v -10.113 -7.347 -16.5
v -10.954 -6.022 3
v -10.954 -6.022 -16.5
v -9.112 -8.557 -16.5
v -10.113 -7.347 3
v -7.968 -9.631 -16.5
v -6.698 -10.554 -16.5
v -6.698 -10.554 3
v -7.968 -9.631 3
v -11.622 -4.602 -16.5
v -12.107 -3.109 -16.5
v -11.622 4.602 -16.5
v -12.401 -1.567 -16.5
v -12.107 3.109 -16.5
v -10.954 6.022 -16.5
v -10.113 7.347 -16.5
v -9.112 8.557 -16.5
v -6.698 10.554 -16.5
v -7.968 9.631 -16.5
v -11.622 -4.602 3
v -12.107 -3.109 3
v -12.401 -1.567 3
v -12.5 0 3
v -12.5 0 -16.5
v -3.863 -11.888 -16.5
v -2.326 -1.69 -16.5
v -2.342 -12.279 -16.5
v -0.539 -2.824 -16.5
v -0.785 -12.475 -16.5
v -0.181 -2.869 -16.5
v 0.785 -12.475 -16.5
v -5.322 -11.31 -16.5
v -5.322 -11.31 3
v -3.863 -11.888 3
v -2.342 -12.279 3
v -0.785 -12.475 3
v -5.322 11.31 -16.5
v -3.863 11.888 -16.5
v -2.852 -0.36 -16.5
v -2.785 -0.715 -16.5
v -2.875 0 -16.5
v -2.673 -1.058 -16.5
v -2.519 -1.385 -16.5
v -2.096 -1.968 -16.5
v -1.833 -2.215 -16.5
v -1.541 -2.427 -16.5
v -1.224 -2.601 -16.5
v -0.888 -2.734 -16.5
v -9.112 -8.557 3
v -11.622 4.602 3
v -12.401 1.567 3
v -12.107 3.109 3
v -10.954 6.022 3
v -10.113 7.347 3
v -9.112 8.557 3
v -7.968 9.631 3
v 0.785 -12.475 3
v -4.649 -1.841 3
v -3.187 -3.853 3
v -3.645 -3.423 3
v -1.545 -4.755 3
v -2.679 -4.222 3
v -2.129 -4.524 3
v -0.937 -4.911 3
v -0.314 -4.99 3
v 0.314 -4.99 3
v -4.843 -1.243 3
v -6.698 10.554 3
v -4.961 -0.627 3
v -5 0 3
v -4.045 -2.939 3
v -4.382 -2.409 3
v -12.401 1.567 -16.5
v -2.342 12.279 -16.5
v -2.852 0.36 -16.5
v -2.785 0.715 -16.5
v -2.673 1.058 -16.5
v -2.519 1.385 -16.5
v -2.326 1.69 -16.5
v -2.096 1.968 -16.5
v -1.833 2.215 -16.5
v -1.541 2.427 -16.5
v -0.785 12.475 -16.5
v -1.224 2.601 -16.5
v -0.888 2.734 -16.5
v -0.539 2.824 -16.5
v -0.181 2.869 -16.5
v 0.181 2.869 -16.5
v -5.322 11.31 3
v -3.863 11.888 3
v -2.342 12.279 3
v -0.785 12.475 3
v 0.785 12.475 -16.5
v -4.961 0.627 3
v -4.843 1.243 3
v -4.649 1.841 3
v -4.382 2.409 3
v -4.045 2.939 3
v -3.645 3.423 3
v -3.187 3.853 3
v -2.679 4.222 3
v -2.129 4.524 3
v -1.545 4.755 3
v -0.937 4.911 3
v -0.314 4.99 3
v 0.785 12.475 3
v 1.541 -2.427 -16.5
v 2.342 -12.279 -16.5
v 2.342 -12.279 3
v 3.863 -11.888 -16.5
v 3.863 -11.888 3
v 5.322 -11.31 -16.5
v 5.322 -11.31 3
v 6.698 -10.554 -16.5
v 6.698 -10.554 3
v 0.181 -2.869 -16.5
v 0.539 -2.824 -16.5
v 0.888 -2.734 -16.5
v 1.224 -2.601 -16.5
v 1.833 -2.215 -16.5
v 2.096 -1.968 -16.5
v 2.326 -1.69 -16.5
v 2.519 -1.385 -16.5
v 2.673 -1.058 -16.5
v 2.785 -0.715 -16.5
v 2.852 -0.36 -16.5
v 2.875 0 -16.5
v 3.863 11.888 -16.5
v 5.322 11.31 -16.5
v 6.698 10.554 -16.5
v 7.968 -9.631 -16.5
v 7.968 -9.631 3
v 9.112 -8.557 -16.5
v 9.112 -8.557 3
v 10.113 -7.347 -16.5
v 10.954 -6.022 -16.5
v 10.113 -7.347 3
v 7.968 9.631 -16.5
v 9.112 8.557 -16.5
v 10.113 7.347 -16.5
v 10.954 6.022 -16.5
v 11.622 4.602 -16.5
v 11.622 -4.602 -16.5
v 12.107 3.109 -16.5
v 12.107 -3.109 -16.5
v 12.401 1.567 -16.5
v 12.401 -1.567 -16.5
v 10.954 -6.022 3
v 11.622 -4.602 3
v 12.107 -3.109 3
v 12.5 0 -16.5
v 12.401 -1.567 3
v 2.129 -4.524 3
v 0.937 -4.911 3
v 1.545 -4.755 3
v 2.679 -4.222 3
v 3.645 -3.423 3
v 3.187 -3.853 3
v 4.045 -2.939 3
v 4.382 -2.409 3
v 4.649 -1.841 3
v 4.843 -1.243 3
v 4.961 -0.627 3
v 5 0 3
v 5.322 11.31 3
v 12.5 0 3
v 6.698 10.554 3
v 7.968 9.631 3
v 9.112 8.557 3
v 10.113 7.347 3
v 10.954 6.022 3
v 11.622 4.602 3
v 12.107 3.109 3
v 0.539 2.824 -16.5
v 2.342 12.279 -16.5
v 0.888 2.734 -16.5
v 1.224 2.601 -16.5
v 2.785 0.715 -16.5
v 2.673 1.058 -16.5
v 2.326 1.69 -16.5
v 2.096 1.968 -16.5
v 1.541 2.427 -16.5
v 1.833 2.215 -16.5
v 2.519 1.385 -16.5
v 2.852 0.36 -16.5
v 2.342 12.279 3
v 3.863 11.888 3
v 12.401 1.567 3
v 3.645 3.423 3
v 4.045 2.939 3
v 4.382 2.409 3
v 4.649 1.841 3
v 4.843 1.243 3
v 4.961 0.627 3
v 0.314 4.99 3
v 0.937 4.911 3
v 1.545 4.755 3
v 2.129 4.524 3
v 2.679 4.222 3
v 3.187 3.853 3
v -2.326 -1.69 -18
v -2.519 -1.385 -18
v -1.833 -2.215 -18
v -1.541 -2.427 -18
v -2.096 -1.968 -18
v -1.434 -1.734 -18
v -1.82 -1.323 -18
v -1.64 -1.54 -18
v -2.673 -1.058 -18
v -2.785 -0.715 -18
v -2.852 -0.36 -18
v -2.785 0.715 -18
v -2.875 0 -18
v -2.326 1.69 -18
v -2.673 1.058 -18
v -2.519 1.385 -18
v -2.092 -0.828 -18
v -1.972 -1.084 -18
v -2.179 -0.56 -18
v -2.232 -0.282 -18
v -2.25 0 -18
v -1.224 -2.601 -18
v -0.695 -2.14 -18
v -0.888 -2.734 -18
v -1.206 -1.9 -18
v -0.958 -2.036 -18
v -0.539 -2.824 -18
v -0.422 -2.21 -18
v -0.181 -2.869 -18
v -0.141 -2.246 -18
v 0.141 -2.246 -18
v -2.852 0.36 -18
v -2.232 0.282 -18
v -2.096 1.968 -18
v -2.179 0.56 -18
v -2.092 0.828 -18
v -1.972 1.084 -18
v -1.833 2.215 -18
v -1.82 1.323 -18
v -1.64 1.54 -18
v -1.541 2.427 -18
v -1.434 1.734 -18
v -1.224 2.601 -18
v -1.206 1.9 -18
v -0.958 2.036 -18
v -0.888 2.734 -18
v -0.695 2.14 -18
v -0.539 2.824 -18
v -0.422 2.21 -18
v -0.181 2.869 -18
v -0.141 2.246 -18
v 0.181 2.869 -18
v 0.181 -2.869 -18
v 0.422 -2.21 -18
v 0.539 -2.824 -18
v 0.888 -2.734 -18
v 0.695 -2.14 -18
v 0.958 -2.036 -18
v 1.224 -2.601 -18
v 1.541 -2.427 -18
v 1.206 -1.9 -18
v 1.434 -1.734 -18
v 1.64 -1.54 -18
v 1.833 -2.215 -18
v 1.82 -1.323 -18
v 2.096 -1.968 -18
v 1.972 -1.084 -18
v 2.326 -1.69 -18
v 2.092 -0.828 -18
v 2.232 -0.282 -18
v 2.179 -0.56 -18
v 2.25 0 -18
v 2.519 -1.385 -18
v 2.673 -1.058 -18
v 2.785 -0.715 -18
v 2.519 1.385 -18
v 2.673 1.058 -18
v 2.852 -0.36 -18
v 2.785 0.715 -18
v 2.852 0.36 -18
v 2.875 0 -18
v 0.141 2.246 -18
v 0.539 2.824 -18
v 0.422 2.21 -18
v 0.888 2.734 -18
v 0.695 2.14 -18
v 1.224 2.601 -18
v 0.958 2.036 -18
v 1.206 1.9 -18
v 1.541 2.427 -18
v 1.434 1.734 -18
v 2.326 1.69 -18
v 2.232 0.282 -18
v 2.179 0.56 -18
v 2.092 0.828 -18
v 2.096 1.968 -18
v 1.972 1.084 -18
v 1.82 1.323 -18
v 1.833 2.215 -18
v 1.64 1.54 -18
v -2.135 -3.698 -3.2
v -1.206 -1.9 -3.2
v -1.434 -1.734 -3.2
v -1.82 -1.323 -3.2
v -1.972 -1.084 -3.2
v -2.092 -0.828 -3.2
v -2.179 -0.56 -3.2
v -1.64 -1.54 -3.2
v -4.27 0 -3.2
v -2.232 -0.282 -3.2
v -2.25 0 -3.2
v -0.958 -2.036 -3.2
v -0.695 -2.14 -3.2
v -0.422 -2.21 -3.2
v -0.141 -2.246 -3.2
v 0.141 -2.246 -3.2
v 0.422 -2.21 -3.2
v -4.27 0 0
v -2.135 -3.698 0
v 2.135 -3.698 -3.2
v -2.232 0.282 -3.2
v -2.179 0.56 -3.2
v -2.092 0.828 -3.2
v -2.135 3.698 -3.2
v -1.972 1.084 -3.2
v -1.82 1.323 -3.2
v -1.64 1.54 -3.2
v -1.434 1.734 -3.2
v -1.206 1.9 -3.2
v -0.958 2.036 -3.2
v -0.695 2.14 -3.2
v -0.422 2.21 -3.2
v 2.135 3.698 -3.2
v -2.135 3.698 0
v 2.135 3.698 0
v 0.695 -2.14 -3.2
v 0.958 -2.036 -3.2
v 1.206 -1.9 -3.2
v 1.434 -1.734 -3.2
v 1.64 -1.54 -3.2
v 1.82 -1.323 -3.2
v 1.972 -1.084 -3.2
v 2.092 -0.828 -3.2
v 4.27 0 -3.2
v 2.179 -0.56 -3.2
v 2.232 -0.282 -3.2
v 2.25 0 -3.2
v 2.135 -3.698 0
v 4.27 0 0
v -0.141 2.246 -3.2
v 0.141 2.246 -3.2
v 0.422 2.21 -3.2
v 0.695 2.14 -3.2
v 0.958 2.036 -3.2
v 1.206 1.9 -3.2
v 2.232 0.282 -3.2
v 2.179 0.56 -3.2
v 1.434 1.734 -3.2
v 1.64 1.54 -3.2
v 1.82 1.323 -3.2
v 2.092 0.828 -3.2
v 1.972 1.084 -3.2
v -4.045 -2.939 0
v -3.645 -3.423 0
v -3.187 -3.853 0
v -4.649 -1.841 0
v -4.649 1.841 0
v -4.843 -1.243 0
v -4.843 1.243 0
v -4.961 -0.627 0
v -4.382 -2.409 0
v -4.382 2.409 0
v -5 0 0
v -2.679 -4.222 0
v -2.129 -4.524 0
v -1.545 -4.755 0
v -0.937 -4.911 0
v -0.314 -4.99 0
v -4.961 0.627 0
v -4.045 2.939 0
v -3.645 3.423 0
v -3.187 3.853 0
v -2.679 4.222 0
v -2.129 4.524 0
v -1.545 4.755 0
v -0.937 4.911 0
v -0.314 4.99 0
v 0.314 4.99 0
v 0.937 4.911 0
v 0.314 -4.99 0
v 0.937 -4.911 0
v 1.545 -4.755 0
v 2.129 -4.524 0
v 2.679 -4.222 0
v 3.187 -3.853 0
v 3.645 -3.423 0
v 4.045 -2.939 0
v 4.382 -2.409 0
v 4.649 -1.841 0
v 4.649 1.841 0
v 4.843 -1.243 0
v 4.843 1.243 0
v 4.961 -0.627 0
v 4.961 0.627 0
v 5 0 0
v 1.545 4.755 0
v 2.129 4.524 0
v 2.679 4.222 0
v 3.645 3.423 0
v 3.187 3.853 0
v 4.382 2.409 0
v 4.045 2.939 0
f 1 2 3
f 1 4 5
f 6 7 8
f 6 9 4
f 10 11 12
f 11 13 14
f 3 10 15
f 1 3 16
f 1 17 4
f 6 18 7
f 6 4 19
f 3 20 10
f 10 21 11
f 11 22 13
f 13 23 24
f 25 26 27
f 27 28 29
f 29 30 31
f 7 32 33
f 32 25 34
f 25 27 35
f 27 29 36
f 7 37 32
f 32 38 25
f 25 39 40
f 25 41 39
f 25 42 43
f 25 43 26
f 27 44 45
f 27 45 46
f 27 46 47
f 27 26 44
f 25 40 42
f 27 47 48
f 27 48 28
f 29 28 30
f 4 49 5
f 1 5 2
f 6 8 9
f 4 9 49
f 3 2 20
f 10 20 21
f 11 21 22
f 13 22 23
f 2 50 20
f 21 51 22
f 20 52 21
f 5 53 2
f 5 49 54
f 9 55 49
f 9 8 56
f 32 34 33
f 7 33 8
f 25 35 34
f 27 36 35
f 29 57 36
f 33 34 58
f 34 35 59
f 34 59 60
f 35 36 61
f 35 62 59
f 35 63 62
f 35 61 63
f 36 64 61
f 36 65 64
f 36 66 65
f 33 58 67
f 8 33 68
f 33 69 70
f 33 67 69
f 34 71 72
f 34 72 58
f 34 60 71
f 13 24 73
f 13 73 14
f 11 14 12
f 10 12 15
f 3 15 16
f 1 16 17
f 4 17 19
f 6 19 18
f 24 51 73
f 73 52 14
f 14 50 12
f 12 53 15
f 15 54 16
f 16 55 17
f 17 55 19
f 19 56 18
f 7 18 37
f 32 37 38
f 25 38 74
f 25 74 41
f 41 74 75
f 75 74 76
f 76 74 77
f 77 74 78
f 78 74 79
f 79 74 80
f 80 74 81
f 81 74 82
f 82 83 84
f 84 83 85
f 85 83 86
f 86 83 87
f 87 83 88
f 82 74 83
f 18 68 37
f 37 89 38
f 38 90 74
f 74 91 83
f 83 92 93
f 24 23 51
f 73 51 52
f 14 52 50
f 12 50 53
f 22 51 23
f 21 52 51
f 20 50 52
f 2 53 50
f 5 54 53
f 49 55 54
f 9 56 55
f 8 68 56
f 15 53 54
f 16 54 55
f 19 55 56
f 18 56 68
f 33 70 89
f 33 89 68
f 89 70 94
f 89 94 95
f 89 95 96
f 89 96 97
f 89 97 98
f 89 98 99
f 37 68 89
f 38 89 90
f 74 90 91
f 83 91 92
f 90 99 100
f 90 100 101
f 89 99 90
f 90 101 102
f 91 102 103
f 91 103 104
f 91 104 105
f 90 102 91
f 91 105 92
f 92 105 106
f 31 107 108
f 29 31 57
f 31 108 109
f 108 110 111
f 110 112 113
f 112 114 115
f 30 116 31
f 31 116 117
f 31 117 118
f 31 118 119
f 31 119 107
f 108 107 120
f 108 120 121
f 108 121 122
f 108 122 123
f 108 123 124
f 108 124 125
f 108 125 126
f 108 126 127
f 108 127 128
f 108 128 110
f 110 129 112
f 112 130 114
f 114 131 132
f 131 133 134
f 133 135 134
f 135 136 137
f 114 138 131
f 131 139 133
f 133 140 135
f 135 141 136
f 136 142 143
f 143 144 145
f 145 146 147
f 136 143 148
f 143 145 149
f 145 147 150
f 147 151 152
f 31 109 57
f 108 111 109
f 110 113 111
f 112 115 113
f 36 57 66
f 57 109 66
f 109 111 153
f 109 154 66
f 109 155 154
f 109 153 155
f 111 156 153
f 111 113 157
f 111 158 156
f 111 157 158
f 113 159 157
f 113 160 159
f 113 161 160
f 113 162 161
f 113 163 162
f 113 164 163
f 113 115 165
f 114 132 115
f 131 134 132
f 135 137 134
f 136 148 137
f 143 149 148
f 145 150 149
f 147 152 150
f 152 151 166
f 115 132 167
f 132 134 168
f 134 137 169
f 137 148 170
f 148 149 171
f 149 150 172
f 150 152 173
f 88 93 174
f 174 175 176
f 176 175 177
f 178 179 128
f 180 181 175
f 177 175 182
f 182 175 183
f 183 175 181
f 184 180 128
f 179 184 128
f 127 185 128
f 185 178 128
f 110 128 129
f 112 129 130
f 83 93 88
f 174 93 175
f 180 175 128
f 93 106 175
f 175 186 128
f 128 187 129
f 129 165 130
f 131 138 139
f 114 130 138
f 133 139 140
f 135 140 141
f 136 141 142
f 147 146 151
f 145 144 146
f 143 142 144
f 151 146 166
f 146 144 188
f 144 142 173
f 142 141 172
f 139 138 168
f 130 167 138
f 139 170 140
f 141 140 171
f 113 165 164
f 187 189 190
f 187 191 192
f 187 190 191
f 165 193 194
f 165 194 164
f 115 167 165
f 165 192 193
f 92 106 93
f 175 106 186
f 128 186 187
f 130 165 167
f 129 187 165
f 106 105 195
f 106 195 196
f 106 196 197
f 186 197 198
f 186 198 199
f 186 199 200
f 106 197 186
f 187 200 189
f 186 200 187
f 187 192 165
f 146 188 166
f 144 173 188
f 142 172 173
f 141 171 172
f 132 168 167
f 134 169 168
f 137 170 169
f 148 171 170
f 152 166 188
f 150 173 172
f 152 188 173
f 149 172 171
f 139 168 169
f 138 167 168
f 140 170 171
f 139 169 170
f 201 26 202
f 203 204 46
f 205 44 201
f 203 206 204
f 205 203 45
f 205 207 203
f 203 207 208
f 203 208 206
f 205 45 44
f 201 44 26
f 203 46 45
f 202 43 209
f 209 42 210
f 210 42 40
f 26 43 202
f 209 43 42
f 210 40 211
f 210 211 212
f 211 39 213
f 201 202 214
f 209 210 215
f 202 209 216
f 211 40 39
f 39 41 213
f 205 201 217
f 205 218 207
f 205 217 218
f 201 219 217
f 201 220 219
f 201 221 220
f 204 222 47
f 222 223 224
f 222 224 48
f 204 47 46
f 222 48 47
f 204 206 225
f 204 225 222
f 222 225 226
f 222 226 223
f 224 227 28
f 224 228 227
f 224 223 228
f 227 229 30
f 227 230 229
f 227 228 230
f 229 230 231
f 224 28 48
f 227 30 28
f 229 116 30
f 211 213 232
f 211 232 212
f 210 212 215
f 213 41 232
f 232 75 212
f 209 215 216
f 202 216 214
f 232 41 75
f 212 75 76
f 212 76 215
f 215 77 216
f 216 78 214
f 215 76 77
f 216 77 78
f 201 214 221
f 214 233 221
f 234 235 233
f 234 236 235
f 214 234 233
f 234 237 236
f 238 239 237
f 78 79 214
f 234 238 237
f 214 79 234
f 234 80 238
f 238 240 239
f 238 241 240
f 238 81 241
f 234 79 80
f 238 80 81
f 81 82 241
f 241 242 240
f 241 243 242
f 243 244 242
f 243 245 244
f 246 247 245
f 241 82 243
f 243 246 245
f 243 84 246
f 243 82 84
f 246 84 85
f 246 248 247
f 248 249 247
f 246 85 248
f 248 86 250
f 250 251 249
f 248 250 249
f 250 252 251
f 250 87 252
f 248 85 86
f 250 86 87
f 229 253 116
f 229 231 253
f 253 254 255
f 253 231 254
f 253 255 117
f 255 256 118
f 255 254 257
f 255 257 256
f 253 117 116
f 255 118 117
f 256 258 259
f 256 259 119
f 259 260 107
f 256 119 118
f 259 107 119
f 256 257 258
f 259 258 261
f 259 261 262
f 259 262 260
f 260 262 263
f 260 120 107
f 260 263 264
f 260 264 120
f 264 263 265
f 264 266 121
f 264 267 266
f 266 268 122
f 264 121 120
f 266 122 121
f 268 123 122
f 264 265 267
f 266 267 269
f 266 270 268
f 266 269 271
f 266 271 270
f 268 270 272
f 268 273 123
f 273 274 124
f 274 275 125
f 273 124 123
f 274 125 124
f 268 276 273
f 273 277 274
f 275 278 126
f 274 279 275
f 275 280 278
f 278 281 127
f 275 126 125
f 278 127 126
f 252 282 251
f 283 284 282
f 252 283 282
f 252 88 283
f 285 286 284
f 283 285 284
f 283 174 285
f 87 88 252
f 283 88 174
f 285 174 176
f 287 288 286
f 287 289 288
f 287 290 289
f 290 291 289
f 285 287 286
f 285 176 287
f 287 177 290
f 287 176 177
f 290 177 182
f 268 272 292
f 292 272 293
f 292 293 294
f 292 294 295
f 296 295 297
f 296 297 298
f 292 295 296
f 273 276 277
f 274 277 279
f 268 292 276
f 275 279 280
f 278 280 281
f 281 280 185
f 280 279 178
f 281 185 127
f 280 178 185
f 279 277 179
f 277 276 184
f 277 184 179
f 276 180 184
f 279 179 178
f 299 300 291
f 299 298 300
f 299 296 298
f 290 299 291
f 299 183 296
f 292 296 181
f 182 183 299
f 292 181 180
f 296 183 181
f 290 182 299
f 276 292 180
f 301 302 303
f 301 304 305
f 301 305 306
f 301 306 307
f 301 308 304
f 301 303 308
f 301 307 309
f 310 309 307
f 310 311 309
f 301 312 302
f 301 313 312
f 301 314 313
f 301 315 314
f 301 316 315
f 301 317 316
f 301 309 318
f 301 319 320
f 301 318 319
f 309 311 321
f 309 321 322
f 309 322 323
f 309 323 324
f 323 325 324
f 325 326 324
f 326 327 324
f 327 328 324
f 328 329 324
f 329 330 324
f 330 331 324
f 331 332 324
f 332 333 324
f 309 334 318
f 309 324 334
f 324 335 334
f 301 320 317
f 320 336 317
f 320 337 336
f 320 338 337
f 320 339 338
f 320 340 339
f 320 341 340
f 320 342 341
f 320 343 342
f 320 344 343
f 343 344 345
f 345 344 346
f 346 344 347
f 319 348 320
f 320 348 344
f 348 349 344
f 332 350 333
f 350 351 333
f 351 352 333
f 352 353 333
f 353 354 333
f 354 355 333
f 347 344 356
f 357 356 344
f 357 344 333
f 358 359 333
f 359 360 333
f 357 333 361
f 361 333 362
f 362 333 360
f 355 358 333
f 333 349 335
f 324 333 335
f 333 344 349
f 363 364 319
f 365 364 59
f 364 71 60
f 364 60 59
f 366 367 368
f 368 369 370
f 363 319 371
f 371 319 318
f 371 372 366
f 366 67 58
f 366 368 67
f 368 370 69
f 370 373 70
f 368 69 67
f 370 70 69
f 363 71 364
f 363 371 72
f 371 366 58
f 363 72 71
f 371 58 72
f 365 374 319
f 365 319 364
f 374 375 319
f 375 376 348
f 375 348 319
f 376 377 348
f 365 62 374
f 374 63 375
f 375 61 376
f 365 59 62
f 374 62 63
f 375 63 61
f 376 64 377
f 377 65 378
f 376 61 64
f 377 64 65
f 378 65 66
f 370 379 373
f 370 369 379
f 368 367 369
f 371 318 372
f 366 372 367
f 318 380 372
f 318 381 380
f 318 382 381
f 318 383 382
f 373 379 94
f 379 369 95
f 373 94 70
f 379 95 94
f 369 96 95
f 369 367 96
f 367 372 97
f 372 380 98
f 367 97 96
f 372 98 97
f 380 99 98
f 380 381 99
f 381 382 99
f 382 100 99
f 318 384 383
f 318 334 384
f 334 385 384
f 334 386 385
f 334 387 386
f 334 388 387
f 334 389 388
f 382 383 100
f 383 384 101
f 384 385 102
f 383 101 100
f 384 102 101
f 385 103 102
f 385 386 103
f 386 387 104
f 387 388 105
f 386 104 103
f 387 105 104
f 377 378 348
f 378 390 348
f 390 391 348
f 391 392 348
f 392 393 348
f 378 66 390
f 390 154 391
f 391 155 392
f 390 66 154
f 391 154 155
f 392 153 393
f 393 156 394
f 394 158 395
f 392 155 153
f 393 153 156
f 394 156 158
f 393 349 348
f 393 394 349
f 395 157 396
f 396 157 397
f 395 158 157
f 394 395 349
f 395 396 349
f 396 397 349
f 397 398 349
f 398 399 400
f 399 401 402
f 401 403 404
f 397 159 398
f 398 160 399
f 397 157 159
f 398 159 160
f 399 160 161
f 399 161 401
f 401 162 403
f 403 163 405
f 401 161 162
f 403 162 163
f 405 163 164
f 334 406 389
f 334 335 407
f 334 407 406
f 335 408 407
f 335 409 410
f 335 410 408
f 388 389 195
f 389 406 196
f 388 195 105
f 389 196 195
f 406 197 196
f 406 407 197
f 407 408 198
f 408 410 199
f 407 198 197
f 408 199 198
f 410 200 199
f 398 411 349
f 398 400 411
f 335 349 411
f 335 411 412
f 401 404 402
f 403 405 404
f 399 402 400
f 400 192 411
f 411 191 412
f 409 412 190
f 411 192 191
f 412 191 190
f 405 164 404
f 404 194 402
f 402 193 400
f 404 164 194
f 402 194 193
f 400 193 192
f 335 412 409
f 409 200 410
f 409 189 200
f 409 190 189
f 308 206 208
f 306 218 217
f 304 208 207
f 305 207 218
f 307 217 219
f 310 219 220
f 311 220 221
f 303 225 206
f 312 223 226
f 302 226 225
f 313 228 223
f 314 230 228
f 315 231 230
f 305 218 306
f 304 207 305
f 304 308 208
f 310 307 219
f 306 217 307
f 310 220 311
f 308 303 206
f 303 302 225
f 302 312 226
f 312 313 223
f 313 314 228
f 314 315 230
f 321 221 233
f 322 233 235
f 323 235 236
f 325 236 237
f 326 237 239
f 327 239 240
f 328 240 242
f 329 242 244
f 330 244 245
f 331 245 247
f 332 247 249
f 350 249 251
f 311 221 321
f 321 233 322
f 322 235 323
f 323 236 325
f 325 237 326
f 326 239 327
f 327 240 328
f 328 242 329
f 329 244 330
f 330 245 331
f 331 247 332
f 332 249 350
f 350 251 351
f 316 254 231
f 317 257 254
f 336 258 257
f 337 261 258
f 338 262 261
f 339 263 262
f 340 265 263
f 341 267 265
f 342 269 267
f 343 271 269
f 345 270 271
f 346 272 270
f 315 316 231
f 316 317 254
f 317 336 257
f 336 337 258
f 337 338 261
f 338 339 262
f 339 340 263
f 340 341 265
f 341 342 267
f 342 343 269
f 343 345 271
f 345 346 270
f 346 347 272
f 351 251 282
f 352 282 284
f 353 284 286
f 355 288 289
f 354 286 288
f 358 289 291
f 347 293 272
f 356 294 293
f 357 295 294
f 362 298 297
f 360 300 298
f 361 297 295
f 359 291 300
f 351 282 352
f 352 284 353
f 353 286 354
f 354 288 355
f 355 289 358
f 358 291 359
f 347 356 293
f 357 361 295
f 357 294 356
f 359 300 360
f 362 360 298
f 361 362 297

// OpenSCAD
$fn = 50;

difference() {
	union() {
		translate(v = [0, 0, -16.5]) {
			cylinder(h = 19.5, r = 12.5);
		}
		#translate(v = [0, 0, -18.0]) {
			cylinder(h = 18, r = 2.875);
		}
	}
	union() {
		translate(v = [0, 0, 0]) {
			rotate(a = [0, 0, 0]) {
				difference() {
					union() {
						translate(v = [0, 0, -3.2]) {
							linear_extrude(height = 3.2) {
								polygon(points = [[4.2698, 0.0], [2.1349000000000005, 3.697755269078796], [-2.134899999999999, 3.6977552690787965], [-4.2698, 5.228996902999369e-16], [-2.134900000000002, -3.6977552690787956], [2.1348999999999974, -3.697755269078798]]);
							}
						}
					}
					union();
				}
			}
		}
		#cylinder(h = 3, r = 5.0);
		#translate(v = [0, 0, -100.0]) {
			cylinder(h = 200, r = 2.25);
		}
	}
}
